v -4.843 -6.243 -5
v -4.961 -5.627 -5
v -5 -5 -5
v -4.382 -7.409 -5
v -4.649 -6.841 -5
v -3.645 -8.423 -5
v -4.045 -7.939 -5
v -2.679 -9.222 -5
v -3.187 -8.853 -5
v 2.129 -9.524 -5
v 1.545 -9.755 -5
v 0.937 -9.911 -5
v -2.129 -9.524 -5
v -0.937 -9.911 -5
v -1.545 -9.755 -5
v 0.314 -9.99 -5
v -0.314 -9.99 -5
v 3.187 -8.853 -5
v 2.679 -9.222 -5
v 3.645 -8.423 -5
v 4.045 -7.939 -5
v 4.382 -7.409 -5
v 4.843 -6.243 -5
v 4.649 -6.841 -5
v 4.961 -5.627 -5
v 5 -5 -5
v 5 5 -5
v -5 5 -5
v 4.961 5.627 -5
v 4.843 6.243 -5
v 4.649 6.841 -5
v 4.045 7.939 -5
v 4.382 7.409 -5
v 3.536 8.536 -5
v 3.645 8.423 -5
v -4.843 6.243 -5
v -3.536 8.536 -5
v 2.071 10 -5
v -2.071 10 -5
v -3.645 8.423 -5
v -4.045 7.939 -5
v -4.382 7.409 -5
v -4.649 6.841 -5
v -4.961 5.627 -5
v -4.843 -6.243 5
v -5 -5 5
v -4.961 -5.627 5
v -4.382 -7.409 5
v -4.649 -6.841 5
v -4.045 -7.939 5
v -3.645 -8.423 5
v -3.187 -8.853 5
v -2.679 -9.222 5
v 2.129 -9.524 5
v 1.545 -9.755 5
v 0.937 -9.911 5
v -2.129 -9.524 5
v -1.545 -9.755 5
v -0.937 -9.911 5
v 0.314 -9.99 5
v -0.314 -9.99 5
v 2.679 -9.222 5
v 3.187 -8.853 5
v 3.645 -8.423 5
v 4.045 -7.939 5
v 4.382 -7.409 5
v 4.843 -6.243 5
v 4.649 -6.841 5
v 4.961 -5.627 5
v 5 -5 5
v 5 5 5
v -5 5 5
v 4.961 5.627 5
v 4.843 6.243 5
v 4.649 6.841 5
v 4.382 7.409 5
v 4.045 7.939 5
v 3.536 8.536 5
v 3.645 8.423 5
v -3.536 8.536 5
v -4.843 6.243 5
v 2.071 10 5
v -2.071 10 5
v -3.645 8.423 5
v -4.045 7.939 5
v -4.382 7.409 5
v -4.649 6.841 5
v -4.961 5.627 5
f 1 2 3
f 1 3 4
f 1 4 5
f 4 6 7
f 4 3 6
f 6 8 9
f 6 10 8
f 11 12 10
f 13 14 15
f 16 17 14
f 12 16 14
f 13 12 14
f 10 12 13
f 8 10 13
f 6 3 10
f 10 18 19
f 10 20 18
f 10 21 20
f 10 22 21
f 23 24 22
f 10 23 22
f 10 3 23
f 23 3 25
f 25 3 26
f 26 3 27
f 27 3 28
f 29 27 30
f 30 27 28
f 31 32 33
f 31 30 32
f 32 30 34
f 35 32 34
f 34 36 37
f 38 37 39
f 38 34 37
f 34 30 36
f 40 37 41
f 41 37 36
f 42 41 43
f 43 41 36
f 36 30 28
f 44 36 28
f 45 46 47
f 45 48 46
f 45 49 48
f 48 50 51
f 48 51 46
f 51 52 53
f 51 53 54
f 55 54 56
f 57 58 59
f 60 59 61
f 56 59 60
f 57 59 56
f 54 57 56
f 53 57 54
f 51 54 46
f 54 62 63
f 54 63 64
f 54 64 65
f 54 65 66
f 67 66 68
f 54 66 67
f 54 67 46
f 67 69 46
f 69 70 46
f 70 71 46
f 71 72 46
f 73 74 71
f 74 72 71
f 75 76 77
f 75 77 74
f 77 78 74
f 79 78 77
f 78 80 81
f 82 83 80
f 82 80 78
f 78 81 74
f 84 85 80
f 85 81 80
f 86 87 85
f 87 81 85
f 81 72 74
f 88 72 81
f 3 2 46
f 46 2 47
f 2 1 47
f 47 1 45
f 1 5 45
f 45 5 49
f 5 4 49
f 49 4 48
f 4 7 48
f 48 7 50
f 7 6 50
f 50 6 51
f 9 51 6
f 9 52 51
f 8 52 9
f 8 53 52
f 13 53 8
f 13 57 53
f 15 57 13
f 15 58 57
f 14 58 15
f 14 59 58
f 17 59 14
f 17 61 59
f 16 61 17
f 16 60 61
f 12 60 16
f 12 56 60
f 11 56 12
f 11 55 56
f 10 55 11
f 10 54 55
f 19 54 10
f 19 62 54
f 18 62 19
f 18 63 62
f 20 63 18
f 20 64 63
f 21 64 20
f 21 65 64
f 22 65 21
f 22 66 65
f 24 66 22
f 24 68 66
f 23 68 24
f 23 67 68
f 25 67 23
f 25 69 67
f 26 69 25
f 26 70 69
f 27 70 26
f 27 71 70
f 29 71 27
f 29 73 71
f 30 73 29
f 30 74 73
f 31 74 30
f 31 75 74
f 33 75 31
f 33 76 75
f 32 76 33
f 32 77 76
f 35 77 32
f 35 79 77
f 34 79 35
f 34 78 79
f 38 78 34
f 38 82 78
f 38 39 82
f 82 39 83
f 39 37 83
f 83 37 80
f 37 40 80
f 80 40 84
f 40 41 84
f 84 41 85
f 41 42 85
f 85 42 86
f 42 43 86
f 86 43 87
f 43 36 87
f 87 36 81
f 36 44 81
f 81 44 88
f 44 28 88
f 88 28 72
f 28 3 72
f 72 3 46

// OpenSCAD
// file: ../utils/shields.scad
// Mendel90
//
// GNU GPL v2
// nop.head@gmail.com
// hydraraptor.blogspot.com
//
// For making heat shields to prevent corner warping, see http://hydraraptor.blogspot.co.uk/2010/09/some-corners-like-it-hot.html
//
shield_thickness = 1;
shield_base_thickness = 4;
shield_base_height = 5;
shield_clearance = 1;

module L(w,h,t) {
	translate([-t,-t,0])
		difference() {
			cube([w,w,h]);
			translate([t,t,-1]) cube([w,w,h+2]);
		}
}

module corner_shield(w,h) {
	color([0,1,0])union() translate([-shield_clearance, -shield_clearance, 0]) {
		L(w,h,shield_thickness);
		L(w + shield_base_thickness - shield_thickness, shield_base_height, shield_base_thickness);
	}
}

module side_shield(w,h) {
	translate([-w/2, -shield_thickness, 0])
		color([0,1,0]) union() {
			cube([w, shield_thickness, h]);
			translate([0,shield_thickness - shield_base_thickness, 0]) 
				cube([w, shield_base_thickness, shield_base_height]);
		}
}

//corner_sheild(20, 15);
// file: ../utils/cables.scad
//
// Mendel90
//
// GNU GPL v2
// nop.head@gmail.com
// hydraraptor.blogspot.com
//
// Cable sizes
//
function cable_wires(cable)     = cable[0];
function cable_wire_size(cable) = cable[1];

// numbers from http://mathworld.wolfram.com/CirclePacking.html
function cable_radius(cable) = ceil([0, 1, 2, 2.15, 2.41, 2.7, 3, 3][cable_wires(cable)] * cable_wire_size(cable)) / 2; // radius of a bundle

function wire_hole_radius(cable) = cable_radius(cable) + 0.5;

module wire_hole(r) {
    cylinder(r = r, h = 100, center = true);
}

// arrangement of bundle in flat cable clip
function cable_bundle(cable) = [[0,0], [1,1], [2,1], [2, 0.5 + sin(60)], [2,2], [3, 0.5 + sin(60)], [3,2]][cable_wires(cable)];

function cable_width(cable)  = cable_bundle(cable)[0] * cable_wire_size(cable); // width in flat clip
function cable_height(cable) = cable_bundle(cable)[1] * cable_wire_size(cable); // height in flat clip
// file: ../utils/teardrops.scad
//
// Mendel90
//
// GNU GPL v2
// nop.head@gmail.com
// hydraraptor.blogspot.com
//
// For making horizontal holes that don't need support material
// Small holes can get away without it but they print better with truncated teardrops
//
module teardrop_2D(r) {
    hull() {
        circle(r = r, center = true);
        translate([0, r/2])
            square([2*r*(2*cos(45)-1), r], center = true);
    }
}

module teardrop(h, r, center)
    render(convexity = 5) linear_extrude(height = h, convexity = 2, center = center)
        teardrop_2D(r);

module teardrop_plus(h, r, center)
    teardrop(h, r + layer_height / 4, center);


module tearslot(h, r, w, center)
    linear_extrude(height = h, convexity = 6, center = center)
        hull() {
            translate([-w/2,0,0]) teardrop_2D(r);
            translate([ w/2,0,0]) teardrop_2D(r);
        }

module vertical_tearslot(h, r, l, center = true)
    linear_extrude(height = h, convexity = 6, center = center)
        hull() {
            translate([0, l / 2]) teardrop_2D(r);
            translate([0, -l / 2, 0])
                circle(r = r, center = true);
        }
// file: ../utils/polyholes.scad
//
// Mendel90
//
// GNU GPL v2
// nop.head@gmail.com
// hydraraptor.blogspot.com
//
// See http://hydraraptor.blogspot.com/2011/02/polyholes.html
//
function sides(r) = max(round(4 *r),3);
function corrected_radius(r,n) = 0.1 + r / cos(180 / n);
function corrected_diameter(d) = 0.2 + d / cos(180 / sides(d / 2));

module poly_circle(r, center = false) {
    n = sides(r);
    circle(r = corrected_radius(r,n), $fn = n, center = center);
}

module poly_cylinder(r, h, center = false) {
    n = sides(r);
    cylinder(h = h, r = corrected_radius(r,n), $fn = n, center = center);
}

module poly_d_cylinder(r, center = false) {
    n = sides(r);
    r = corrected_radius(r,n);
    cylinder(h = h, r = r, $fn = n, center = center);
    translate([0, -r, 0])
        cube([r, 2 * r, h]);
}
// file: ../utils/bom.scad
//******************************************************************************
// Description:
// 
// Prusa Mini - BOM functions
//
// OpenSCAD code Copyright CC-BY-SA Bob Cousins 2020
//
// STL files from prusa3d/Original-Prusa-MINI licensed under the GNU General Public License v3.0 by Prusa Research a.s.
//
// Revision History:
//
// 1 2020-04-17 RMC  Initial version
//******************************************************************************


// requires include <../move-to-origin/stl_move_to_origin.scad>
// requires config.scad


//
module bom_assembly(name)
{
  echo (str("<b>bom, assembly, ",name));
  
  children();
  
  echo (str("<b>bom, /assembly, ",name));
}

module assembly_start(name)
{
  echo (str("<b>bom, assembly, ",name));
}

module assembly_end(name)
{
  echo (str("<b>bom, /assembly, ",name));
}

module bom_ref(name)
{
  echo (str("<b>bom, part, ",name));
  
  children();
}

module bom_printed (spec,path,where)
{
  echo (str("<b>bom, printed, ", spec[0]));

  move_stl_to_origin (spec, path=path, where=where);
}

module bom_mech (spec,path,where)
{
  echo (str("<b>bom, mech, ", spec[0]));

  move_stl_to_origin (spec, path=path, where=where);
}

// compatibility functions for Mendel90 files

// name a vitamin
module vitamin(name) 
{                  
  if (show_bom_level >= BOM_VITAMINS)
     echo(name);
}
// file: ../conf/utils.scad
//
// Mendel90
//
// GNU GPL v2
// nop.head@gmail.com
// hydraraptor.blogspot.com
//
// Utilities
//
include <../utils/bom.scad>
include <../utils/polyholes.scad>
include <../utils/teardrops.scad>
include <../utils/cables.scad>
include <../utils/shields.scad>

module slot(h, r, l, center = true)
    linear_extrude(height = h, convexity = 6, center = center)
        hull() {
            translate([l/2,0,0])
                circle(r = r, center = true);
            translate([-l/2,0,0])
                circle(r = r, center = true);
        }

module nut_trap(screw_r, nut_r, depth, horizontal = false, supported = false, length = 200) {
    union() {
        if(horizontal) {
            if(screw_r)
                teardrop_plus(r = screw_r, h = length, center = true);
            cylinder(r = nut_r + layer_height / 4, h = depth * 2, center = true, $fn = 6);
        }
        else {
            difference() {
                union() {
                    if(screw_r)
                        poly_cylinder(r = screw_r, h = length, center = true);
                    cylinder(r = nut_r, h = depth * 2, center = true, $fn = 6);
                }
                if(supported)
                    translate([0, 0, depth - eta])
                        cylinder(r = nut_r, h = layer_height, center = false);
            }
        }
    }
}

module part_screw_hole(screw, nut, horizontal = false, supported = false) {
    screw_r = screw_clearance_radius(screw);
    if(nut)
        translate([0, 0, nut_trap_depth(nut)])
            nut_trap(screw_r, nut_radius(nut), nut_trap_depth(nut), horizontal, supported);
    else
        if(horizontal)
            teardrop_plus(r = screw_r, h = 200, center = true);
        else
            poly_cylinder(r = screw_r, h = 200, center = true);
}

module fillet(r, h) {
    translate([r / 2, r / 2, 0])
        difference() {
            cube([r + eta, r + eta, h], center = true);
            translate([r/2, r/2, 0])
                cylinder(r = r, h = h + 1, center = true);
        }
}

module right_triangle(width, height, h, center = true) {
    linear_extrude(height = h, center = center)
        polygon(points = [[0,0], [width, 0], [0, height]]);
}

module rounded_square(w, h, r)
{
    union() {
        square([w - 2 * r, h], center = true);
        square([w, h - 2 * r], center = true);
        for(x = [-w/2 + r, w/2 - r])
            for(y = [-h/2 + r, h/2 - r])
                translate([x, y])
                    circle(r = r);
    }
}

module rounded_rectangle(size, r, center = true)
{
    w = size[0];
    h = size[1];
    linear_extrude(height = size[2], center = center)
        rounded_square(size[0], size[1], r);
}

//
// Cylinder with rounded ends
//
module rounded_cylinder(r, h, r2)
{
    rotate_extrude()
        union() {
            square([r - r2, h]);
            square([r, h - r2]);
            translate([r - r2, h - r2])
                circle(r = r2);
        }
}

module sector(r, a, h, , center = true) {
    linear_extrude(height = h, center = center)
        intersection() {
            circle(r = r, center = true);
                polygon(points = [
                    [0, 0],
                    [2 * r * cos(a / 2),  2 * r * sin(a / 2)],
                    [2 * r * cos(a / 2), -2 * r * sin(a / 2)],
                ]);
        }
}

module tube(or, ir, h, center = true) {
    linear_extrude(height = h, center = center, convexity = 5)
        difference() {
            circle(or);
            circle(ir);
        }
}

//
// Exploded view helper
//
module explode(v, offset = [0,0,0]) {
    if(exploded) {
        translate(v)
            child();
        render() hull() {
            sphere(0.2);
            translate(v + offset)
                sphere(0.2);
        }
    }
    else
        child();
}
//
// Same again as cant appear twice in the tree
//
module explode2(v, offset = [0,0,0]) {
    if(exploded) {
        translate(v)
            child();
        render() hull() {
            sphere(0.2);
            translate(v + offset)
                sphere(0.2);
        }
    }
    else
        child();
}
//
// Restore the view point
//
module view(t,r,d = 1000)
    rotate([55, 0, 25])
        translate([0, 0, -d + 500])
            rotate([-r[0], 0, 0])
                rotate([0, -r[1], 0])
                    rotate([0, 0, -r[2]])
                        translate(-t)
                            child();
// main file
// example for  vertical_tearslot
// License GNU AFFERO GENERAL PUBLIC LICENSE v3+
// Copyright 2014 Christian Ege <k4230r6@gmail.com>

use <../conf/utils.scad>

$fn=50;

// h - height
// r - radius 
// l - length 
vertical_tearslot(h=10,r=5,l=10, center = true);
